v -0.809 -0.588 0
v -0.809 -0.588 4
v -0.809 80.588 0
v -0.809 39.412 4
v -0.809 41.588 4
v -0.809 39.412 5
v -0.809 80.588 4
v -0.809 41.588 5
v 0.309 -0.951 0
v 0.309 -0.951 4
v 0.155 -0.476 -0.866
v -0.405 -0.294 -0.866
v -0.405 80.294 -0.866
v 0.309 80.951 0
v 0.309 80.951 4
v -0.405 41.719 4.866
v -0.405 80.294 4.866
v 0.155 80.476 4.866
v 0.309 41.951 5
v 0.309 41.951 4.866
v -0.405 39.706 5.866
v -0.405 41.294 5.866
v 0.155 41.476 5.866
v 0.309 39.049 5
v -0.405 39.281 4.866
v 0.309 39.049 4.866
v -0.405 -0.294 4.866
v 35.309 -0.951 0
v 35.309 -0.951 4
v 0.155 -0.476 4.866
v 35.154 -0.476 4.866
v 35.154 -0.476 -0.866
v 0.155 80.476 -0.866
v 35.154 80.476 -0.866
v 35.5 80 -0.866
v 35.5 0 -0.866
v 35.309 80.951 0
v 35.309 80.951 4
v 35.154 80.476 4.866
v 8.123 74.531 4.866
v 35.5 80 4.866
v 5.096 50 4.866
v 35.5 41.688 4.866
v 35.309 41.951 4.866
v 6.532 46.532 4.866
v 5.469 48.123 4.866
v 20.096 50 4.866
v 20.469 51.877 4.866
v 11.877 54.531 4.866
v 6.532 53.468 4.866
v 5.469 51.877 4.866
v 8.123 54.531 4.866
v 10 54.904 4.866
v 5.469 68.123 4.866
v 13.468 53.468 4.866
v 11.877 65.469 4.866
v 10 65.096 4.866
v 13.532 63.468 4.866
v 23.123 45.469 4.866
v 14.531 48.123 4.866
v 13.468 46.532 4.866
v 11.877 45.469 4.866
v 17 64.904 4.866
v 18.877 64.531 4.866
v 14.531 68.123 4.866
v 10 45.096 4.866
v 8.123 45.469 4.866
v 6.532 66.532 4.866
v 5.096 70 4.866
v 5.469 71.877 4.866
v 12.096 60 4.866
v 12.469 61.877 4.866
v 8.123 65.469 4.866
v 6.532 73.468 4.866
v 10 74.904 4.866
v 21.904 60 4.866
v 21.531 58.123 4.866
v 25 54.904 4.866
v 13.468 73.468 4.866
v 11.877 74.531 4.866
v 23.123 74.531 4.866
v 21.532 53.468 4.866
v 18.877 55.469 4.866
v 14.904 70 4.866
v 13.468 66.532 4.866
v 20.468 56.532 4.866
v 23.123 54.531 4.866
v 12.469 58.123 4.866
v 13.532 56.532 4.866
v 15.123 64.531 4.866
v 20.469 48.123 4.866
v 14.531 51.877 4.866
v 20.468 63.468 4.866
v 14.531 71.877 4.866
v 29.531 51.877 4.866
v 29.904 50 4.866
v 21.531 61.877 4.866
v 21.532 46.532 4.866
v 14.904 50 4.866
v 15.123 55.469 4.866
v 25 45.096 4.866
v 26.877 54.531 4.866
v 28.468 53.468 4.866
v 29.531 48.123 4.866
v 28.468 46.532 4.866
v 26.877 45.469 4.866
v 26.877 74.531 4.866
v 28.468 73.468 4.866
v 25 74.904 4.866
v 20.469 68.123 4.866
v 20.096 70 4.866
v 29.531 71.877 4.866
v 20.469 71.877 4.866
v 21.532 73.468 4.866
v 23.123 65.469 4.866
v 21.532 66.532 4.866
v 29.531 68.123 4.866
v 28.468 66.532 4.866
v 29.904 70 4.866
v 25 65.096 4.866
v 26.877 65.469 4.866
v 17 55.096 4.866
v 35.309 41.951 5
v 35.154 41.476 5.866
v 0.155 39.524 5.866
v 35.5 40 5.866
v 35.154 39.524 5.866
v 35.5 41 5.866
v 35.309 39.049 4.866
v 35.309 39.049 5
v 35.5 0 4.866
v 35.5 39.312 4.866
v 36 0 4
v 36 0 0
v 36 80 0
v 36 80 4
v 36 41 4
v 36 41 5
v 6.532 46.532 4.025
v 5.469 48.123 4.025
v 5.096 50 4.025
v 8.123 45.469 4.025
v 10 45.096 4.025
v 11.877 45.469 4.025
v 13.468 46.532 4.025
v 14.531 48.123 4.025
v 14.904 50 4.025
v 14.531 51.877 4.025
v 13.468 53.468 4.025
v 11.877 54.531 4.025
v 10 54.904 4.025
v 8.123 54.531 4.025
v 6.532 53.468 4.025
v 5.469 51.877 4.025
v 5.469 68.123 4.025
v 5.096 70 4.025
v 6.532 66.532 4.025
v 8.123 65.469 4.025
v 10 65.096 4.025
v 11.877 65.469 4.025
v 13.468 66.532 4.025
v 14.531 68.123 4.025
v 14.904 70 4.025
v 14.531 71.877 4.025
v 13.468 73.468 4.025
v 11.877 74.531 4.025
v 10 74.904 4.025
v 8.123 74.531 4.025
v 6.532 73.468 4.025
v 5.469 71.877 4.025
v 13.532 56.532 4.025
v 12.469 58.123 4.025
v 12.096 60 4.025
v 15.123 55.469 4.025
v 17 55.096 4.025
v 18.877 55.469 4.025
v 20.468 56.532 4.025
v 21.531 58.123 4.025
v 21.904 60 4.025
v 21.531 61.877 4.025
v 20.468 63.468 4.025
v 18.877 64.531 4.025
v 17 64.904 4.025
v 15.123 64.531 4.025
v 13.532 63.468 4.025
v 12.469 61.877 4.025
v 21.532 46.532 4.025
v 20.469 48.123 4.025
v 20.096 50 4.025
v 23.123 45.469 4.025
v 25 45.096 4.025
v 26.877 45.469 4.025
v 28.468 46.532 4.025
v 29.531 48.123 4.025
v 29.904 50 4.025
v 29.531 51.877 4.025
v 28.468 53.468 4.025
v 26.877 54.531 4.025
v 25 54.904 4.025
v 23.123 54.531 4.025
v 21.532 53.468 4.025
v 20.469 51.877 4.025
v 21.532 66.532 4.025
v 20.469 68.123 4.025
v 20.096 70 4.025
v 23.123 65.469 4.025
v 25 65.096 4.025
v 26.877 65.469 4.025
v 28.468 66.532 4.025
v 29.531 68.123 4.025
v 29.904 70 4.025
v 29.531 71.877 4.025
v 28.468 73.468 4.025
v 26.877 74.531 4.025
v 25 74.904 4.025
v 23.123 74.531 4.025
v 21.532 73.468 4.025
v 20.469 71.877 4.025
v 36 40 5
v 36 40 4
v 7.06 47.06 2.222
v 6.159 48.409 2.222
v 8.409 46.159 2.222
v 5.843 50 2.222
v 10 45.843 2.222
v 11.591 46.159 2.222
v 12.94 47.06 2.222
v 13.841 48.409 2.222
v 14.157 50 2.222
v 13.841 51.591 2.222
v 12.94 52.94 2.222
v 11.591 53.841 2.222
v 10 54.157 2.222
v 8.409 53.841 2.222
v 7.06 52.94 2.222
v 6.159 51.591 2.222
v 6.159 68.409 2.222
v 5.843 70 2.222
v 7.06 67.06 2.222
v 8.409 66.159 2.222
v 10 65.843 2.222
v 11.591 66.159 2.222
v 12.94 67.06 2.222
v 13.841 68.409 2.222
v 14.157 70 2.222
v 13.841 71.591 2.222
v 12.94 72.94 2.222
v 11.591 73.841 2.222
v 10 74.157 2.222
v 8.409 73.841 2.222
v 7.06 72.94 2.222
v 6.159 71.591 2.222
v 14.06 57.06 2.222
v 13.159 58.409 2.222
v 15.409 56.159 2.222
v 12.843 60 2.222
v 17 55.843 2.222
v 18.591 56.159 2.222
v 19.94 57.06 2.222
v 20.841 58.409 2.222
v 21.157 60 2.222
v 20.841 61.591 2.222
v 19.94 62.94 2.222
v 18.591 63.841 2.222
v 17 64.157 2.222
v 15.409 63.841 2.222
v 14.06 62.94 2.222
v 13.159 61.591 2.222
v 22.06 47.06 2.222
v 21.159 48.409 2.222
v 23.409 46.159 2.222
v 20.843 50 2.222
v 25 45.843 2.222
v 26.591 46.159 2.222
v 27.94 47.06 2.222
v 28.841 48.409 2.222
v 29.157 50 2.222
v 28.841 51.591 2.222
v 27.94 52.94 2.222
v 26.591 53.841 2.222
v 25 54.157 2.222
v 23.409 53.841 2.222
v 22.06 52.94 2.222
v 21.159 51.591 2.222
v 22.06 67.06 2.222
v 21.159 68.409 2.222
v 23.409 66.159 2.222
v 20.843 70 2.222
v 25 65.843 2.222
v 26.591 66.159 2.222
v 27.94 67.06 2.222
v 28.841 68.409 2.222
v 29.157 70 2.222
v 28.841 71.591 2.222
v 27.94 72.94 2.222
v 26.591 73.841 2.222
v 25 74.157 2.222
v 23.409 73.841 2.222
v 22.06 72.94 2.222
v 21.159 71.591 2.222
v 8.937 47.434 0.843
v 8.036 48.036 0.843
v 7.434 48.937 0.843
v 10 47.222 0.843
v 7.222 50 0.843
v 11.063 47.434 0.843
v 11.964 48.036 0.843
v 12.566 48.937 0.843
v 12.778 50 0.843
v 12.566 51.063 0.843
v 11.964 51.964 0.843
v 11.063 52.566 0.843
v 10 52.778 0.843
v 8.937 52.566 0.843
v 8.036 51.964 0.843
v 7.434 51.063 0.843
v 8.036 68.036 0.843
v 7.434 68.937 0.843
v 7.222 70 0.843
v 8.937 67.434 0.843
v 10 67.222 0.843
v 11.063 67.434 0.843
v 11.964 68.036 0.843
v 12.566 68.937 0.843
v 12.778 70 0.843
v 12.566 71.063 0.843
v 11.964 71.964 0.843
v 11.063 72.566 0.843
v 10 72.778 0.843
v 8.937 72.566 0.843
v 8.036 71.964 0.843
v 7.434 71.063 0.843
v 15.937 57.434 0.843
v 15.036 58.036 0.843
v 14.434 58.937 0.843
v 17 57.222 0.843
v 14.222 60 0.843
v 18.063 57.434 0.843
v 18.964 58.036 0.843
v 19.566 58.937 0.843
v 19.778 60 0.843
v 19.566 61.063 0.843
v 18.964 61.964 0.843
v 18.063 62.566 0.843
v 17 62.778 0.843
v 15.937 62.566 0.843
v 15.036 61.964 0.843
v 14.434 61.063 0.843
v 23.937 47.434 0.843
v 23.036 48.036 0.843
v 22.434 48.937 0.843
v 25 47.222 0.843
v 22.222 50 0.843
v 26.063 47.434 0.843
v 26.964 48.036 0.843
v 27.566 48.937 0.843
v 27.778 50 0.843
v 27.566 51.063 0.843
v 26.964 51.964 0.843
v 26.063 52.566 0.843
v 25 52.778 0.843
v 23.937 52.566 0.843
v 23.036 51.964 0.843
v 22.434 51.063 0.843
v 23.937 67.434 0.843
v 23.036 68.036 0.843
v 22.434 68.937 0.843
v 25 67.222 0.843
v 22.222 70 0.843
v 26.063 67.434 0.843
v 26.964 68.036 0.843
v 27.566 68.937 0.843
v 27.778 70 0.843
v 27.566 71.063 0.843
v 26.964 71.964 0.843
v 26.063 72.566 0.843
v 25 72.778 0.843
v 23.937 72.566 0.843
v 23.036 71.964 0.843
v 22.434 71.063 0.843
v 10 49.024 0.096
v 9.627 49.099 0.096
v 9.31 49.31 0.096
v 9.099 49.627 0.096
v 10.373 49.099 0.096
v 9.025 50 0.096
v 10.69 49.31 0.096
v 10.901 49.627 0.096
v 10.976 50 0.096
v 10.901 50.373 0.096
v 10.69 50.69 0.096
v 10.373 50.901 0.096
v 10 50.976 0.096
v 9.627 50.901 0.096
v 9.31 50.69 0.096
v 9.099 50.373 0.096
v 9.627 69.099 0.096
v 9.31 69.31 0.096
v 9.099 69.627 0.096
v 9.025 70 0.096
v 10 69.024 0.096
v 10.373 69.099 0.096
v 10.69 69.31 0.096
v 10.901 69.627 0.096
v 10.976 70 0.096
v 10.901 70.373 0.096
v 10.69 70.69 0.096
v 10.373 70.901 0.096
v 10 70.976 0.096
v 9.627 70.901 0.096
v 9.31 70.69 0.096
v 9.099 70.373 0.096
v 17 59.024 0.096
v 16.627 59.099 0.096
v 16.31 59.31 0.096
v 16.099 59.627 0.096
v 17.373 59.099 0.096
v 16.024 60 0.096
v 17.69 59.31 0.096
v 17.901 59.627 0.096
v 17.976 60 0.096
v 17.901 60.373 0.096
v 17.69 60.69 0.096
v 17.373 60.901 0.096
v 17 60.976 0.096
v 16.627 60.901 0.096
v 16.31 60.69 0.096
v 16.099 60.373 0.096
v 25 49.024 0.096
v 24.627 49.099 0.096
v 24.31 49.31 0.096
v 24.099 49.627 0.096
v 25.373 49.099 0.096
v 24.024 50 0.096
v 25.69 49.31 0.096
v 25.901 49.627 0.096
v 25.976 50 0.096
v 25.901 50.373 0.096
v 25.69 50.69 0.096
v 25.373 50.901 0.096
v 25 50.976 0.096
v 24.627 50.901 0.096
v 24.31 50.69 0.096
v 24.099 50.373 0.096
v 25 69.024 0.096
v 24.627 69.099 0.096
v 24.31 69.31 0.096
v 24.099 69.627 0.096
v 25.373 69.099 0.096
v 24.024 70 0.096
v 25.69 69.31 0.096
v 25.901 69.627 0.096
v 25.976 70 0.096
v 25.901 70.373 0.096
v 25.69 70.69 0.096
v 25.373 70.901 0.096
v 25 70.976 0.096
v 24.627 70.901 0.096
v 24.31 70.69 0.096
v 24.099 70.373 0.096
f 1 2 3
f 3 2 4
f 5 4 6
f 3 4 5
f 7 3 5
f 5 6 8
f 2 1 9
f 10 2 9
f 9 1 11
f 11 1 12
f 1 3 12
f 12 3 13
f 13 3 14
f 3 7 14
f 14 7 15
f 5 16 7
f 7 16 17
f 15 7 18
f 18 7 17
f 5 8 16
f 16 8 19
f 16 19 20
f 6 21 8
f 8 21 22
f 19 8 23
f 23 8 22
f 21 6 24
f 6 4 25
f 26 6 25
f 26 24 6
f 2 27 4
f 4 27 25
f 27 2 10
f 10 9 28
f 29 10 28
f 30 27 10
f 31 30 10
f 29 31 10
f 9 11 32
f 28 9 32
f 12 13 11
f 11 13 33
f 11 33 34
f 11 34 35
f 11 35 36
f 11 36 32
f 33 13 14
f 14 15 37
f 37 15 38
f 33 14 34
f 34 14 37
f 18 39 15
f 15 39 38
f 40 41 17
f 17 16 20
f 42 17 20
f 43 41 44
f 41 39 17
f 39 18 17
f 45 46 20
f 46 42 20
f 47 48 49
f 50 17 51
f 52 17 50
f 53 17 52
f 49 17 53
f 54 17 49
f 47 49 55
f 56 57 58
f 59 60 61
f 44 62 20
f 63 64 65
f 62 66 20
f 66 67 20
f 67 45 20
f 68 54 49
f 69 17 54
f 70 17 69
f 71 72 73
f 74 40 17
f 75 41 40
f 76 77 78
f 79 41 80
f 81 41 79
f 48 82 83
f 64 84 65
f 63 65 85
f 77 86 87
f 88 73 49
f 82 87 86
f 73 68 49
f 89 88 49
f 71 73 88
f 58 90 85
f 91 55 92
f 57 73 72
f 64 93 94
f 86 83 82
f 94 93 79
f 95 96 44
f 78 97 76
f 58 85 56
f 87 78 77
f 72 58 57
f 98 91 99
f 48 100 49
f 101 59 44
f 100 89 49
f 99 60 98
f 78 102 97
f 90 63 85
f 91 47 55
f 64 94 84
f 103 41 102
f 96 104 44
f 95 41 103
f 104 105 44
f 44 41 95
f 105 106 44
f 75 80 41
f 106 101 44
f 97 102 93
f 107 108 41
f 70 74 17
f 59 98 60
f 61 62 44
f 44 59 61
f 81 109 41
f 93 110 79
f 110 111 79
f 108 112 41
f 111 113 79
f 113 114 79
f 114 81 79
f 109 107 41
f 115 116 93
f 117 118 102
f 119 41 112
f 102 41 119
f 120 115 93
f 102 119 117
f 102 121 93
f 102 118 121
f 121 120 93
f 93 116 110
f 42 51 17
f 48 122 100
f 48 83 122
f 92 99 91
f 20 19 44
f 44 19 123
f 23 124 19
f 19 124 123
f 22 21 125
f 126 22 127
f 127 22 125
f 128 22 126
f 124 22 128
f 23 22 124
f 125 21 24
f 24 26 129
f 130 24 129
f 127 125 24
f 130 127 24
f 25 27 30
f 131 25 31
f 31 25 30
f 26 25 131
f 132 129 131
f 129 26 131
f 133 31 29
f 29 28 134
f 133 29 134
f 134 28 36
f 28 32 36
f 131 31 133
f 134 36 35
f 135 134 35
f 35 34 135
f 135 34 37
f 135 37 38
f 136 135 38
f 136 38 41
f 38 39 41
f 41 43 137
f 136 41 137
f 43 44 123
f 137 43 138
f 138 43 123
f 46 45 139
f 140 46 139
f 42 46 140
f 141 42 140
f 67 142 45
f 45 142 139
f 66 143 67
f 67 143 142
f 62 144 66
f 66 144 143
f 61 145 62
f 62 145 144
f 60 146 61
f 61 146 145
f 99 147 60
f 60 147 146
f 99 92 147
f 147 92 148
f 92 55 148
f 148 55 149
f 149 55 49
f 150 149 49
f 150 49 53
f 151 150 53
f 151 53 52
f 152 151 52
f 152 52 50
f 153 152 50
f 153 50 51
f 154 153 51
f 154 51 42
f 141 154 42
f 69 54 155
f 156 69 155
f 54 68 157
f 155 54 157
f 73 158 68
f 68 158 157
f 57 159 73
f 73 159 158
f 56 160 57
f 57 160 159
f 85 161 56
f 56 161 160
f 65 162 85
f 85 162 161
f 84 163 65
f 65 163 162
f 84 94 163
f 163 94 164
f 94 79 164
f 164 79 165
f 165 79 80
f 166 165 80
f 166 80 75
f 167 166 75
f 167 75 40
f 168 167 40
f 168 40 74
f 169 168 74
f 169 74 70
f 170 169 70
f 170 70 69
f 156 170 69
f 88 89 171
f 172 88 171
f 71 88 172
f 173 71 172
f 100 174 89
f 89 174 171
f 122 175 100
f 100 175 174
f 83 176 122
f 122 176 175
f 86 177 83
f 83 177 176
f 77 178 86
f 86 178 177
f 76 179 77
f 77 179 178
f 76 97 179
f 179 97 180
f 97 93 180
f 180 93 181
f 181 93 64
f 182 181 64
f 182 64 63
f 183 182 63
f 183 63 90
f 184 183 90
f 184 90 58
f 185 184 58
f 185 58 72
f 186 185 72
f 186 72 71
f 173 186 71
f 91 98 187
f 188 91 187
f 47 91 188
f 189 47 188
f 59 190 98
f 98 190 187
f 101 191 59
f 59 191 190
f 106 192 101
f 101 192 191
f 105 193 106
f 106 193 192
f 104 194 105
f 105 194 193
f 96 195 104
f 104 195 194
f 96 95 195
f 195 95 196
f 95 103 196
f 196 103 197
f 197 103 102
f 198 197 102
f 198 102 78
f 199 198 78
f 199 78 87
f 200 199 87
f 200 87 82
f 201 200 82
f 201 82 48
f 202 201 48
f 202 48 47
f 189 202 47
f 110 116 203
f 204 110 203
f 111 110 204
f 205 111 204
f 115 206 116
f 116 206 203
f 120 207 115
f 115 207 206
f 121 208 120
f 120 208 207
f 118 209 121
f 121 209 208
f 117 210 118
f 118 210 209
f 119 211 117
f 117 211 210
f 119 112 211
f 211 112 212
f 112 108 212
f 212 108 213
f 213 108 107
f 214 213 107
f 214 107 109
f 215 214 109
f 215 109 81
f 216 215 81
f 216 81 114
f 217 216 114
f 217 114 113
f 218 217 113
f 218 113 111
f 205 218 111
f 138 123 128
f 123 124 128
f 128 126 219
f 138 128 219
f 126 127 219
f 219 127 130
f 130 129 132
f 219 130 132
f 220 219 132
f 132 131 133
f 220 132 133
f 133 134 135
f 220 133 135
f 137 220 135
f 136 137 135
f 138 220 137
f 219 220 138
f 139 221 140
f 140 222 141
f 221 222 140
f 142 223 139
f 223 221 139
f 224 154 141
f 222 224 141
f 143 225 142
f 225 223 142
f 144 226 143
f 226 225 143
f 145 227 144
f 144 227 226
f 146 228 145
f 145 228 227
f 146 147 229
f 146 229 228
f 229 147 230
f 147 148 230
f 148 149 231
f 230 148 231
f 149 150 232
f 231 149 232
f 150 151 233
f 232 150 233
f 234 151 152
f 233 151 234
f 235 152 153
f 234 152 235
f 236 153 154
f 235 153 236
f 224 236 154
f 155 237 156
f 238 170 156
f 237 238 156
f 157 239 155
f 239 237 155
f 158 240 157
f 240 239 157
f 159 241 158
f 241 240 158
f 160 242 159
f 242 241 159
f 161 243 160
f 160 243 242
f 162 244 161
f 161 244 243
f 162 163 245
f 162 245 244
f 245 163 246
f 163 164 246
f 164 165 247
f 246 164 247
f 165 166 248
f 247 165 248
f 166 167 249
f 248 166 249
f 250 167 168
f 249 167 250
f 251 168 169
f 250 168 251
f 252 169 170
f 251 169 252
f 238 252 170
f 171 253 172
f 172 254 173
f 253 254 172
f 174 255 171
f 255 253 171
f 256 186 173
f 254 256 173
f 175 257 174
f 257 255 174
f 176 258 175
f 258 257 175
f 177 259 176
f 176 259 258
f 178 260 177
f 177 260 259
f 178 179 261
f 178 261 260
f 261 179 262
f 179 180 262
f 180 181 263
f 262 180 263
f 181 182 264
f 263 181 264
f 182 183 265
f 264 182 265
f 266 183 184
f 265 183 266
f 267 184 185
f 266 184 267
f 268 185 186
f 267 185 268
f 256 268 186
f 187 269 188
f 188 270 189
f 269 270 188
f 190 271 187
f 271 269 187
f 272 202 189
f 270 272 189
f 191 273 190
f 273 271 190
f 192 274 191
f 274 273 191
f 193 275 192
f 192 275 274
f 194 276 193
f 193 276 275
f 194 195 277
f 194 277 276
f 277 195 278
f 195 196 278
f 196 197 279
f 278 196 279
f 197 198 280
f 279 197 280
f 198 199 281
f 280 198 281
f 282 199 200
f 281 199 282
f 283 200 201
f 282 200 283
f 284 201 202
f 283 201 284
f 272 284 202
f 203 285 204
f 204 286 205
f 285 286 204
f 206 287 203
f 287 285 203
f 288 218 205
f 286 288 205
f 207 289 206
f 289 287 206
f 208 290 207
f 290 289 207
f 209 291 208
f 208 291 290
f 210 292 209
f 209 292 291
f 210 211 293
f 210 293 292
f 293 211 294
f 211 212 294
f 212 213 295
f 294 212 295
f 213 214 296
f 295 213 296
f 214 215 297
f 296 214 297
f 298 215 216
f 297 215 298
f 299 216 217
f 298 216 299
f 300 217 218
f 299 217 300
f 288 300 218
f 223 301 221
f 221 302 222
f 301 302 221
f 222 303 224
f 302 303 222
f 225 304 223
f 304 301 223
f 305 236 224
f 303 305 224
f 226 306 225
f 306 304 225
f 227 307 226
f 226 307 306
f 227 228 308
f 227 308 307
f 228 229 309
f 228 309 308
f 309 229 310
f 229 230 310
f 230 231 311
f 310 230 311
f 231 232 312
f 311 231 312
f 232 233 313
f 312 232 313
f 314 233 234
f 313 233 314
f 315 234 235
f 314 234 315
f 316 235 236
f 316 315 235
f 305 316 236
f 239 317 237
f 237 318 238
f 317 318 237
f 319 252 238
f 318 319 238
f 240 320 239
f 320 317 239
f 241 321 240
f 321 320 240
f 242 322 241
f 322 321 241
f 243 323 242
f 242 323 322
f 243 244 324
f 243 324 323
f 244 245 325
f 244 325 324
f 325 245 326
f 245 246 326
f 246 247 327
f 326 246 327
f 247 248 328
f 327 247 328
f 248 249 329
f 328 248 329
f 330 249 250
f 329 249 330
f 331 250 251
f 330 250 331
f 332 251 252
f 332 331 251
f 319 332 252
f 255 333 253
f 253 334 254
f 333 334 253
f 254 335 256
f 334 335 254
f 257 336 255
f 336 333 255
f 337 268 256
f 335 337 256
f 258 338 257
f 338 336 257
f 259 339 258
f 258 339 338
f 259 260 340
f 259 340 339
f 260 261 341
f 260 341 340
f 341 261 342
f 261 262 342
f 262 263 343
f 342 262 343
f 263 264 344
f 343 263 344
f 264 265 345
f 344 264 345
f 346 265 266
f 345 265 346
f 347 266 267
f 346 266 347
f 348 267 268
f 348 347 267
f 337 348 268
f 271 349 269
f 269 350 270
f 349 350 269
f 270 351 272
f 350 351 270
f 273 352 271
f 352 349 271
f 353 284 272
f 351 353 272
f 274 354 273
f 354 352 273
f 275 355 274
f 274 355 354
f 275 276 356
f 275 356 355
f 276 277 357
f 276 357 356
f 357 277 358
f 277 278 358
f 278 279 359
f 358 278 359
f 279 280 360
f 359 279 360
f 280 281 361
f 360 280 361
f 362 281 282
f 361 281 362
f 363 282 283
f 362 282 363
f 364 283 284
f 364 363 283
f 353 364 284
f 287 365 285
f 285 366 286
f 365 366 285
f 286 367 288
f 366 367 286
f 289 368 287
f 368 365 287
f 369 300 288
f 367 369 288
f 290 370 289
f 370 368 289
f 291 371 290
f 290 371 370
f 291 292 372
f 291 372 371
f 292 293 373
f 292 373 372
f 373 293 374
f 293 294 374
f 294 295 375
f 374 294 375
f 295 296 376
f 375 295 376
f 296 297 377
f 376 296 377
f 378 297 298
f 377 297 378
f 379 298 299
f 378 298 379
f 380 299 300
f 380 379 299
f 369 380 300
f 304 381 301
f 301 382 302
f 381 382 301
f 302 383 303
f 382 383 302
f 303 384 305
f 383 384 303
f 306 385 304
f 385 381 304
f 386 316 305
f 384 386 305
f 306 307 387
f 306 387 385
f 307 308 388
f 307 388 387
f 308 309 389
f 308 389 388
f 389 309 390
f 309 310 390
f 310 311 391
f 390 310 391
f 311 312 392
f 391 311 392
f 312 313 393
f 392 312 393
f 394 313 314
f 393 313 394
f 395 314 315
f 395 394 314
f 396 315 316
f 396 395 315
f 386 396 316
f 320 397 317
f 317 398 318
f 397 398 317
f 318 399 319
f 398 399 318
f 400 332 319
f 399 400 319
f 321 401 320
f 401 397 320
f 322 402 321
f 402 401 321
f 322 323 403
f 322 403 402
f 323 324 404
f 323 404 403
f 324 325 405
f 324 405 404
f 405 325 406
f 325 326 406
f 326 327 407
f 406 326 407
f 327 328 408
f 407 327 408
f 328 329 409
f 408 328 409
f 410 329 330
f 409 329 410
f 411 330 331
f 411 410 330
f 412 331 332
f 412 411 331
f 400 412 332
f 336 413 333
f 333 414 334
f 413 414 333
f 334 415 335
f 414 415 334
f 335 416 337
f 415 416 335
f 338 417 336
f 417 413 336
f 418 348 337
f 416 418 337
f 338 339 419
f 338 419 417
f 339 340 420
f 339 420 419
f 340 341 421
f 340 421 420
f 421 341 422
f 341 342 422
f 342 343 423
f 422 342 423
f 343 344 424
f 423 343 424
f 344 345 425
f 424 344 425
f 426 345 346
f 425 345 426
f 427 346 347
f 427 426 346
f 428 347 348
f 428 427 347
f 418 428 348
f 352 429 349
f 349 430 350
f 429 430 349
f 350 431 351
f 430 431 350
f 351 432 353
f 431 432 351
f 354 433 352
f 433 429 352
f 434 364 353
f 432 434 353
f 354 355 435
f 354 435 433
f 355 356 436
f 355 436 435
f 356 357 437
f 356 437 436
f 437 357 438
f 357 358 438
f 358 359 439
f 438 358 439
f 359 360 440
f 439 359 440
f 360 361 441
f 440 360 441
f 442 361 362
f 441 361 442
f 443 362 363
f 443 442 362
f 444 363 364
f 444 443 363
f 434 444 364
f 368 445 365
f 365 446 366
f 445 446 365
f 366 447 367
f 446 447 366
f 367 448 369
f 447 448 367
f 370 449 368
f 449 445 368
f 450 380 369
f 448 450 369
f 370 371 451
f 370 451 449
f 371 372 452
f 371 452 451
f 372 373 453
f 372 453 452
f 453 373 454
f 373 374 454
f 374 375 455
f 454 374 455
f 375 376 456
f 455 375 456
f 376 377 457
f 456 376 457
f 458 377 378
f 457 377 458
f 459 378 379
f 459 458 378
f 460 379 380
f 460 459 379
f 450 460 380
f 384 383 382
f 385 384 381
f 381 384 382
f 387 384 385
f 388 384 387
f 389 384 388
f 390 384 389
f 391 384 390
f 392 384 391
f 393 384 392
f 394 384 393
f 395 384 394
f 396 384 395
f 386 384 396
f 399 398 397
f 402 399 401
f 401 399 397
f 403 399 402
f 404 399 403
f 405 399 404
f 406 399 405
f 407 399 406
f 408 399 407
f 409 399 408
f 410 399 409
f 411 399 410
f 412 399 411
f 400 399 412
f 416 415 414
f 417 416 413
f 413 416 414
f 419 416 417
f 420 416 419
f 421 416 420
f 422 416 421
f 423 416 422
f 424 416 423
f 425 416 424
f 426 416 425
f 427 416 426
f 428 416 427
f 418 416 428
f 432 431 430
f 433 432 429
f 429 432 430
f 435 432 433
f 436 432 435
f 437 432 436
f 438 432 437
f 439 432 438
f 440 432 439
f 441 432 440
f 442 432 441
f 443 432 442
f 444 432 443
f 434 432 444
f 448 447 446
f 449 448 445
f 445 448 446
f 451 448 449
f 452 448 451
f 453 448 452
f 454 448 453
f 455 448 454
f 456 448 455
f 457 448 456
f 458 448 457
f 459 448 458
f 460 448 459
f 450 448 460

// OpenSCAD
// Loguncov Maxim 13.12.13


//$fn=128;


translate([0,40,0])
minkowski()
{cube([35,1,5]);
sphere(1);
}

difference() {

//основа
minkowski()
{cube([35,80,4]);
sphere(1);
}

//отверстия


translate([10,70,5])sphere(5);
translate([25,50,5])sphere(5);
translate([25,70,5])sphere(5);
translate([10,50,5])sphere(5);
translate([17,60,5])sphere(5);



}
